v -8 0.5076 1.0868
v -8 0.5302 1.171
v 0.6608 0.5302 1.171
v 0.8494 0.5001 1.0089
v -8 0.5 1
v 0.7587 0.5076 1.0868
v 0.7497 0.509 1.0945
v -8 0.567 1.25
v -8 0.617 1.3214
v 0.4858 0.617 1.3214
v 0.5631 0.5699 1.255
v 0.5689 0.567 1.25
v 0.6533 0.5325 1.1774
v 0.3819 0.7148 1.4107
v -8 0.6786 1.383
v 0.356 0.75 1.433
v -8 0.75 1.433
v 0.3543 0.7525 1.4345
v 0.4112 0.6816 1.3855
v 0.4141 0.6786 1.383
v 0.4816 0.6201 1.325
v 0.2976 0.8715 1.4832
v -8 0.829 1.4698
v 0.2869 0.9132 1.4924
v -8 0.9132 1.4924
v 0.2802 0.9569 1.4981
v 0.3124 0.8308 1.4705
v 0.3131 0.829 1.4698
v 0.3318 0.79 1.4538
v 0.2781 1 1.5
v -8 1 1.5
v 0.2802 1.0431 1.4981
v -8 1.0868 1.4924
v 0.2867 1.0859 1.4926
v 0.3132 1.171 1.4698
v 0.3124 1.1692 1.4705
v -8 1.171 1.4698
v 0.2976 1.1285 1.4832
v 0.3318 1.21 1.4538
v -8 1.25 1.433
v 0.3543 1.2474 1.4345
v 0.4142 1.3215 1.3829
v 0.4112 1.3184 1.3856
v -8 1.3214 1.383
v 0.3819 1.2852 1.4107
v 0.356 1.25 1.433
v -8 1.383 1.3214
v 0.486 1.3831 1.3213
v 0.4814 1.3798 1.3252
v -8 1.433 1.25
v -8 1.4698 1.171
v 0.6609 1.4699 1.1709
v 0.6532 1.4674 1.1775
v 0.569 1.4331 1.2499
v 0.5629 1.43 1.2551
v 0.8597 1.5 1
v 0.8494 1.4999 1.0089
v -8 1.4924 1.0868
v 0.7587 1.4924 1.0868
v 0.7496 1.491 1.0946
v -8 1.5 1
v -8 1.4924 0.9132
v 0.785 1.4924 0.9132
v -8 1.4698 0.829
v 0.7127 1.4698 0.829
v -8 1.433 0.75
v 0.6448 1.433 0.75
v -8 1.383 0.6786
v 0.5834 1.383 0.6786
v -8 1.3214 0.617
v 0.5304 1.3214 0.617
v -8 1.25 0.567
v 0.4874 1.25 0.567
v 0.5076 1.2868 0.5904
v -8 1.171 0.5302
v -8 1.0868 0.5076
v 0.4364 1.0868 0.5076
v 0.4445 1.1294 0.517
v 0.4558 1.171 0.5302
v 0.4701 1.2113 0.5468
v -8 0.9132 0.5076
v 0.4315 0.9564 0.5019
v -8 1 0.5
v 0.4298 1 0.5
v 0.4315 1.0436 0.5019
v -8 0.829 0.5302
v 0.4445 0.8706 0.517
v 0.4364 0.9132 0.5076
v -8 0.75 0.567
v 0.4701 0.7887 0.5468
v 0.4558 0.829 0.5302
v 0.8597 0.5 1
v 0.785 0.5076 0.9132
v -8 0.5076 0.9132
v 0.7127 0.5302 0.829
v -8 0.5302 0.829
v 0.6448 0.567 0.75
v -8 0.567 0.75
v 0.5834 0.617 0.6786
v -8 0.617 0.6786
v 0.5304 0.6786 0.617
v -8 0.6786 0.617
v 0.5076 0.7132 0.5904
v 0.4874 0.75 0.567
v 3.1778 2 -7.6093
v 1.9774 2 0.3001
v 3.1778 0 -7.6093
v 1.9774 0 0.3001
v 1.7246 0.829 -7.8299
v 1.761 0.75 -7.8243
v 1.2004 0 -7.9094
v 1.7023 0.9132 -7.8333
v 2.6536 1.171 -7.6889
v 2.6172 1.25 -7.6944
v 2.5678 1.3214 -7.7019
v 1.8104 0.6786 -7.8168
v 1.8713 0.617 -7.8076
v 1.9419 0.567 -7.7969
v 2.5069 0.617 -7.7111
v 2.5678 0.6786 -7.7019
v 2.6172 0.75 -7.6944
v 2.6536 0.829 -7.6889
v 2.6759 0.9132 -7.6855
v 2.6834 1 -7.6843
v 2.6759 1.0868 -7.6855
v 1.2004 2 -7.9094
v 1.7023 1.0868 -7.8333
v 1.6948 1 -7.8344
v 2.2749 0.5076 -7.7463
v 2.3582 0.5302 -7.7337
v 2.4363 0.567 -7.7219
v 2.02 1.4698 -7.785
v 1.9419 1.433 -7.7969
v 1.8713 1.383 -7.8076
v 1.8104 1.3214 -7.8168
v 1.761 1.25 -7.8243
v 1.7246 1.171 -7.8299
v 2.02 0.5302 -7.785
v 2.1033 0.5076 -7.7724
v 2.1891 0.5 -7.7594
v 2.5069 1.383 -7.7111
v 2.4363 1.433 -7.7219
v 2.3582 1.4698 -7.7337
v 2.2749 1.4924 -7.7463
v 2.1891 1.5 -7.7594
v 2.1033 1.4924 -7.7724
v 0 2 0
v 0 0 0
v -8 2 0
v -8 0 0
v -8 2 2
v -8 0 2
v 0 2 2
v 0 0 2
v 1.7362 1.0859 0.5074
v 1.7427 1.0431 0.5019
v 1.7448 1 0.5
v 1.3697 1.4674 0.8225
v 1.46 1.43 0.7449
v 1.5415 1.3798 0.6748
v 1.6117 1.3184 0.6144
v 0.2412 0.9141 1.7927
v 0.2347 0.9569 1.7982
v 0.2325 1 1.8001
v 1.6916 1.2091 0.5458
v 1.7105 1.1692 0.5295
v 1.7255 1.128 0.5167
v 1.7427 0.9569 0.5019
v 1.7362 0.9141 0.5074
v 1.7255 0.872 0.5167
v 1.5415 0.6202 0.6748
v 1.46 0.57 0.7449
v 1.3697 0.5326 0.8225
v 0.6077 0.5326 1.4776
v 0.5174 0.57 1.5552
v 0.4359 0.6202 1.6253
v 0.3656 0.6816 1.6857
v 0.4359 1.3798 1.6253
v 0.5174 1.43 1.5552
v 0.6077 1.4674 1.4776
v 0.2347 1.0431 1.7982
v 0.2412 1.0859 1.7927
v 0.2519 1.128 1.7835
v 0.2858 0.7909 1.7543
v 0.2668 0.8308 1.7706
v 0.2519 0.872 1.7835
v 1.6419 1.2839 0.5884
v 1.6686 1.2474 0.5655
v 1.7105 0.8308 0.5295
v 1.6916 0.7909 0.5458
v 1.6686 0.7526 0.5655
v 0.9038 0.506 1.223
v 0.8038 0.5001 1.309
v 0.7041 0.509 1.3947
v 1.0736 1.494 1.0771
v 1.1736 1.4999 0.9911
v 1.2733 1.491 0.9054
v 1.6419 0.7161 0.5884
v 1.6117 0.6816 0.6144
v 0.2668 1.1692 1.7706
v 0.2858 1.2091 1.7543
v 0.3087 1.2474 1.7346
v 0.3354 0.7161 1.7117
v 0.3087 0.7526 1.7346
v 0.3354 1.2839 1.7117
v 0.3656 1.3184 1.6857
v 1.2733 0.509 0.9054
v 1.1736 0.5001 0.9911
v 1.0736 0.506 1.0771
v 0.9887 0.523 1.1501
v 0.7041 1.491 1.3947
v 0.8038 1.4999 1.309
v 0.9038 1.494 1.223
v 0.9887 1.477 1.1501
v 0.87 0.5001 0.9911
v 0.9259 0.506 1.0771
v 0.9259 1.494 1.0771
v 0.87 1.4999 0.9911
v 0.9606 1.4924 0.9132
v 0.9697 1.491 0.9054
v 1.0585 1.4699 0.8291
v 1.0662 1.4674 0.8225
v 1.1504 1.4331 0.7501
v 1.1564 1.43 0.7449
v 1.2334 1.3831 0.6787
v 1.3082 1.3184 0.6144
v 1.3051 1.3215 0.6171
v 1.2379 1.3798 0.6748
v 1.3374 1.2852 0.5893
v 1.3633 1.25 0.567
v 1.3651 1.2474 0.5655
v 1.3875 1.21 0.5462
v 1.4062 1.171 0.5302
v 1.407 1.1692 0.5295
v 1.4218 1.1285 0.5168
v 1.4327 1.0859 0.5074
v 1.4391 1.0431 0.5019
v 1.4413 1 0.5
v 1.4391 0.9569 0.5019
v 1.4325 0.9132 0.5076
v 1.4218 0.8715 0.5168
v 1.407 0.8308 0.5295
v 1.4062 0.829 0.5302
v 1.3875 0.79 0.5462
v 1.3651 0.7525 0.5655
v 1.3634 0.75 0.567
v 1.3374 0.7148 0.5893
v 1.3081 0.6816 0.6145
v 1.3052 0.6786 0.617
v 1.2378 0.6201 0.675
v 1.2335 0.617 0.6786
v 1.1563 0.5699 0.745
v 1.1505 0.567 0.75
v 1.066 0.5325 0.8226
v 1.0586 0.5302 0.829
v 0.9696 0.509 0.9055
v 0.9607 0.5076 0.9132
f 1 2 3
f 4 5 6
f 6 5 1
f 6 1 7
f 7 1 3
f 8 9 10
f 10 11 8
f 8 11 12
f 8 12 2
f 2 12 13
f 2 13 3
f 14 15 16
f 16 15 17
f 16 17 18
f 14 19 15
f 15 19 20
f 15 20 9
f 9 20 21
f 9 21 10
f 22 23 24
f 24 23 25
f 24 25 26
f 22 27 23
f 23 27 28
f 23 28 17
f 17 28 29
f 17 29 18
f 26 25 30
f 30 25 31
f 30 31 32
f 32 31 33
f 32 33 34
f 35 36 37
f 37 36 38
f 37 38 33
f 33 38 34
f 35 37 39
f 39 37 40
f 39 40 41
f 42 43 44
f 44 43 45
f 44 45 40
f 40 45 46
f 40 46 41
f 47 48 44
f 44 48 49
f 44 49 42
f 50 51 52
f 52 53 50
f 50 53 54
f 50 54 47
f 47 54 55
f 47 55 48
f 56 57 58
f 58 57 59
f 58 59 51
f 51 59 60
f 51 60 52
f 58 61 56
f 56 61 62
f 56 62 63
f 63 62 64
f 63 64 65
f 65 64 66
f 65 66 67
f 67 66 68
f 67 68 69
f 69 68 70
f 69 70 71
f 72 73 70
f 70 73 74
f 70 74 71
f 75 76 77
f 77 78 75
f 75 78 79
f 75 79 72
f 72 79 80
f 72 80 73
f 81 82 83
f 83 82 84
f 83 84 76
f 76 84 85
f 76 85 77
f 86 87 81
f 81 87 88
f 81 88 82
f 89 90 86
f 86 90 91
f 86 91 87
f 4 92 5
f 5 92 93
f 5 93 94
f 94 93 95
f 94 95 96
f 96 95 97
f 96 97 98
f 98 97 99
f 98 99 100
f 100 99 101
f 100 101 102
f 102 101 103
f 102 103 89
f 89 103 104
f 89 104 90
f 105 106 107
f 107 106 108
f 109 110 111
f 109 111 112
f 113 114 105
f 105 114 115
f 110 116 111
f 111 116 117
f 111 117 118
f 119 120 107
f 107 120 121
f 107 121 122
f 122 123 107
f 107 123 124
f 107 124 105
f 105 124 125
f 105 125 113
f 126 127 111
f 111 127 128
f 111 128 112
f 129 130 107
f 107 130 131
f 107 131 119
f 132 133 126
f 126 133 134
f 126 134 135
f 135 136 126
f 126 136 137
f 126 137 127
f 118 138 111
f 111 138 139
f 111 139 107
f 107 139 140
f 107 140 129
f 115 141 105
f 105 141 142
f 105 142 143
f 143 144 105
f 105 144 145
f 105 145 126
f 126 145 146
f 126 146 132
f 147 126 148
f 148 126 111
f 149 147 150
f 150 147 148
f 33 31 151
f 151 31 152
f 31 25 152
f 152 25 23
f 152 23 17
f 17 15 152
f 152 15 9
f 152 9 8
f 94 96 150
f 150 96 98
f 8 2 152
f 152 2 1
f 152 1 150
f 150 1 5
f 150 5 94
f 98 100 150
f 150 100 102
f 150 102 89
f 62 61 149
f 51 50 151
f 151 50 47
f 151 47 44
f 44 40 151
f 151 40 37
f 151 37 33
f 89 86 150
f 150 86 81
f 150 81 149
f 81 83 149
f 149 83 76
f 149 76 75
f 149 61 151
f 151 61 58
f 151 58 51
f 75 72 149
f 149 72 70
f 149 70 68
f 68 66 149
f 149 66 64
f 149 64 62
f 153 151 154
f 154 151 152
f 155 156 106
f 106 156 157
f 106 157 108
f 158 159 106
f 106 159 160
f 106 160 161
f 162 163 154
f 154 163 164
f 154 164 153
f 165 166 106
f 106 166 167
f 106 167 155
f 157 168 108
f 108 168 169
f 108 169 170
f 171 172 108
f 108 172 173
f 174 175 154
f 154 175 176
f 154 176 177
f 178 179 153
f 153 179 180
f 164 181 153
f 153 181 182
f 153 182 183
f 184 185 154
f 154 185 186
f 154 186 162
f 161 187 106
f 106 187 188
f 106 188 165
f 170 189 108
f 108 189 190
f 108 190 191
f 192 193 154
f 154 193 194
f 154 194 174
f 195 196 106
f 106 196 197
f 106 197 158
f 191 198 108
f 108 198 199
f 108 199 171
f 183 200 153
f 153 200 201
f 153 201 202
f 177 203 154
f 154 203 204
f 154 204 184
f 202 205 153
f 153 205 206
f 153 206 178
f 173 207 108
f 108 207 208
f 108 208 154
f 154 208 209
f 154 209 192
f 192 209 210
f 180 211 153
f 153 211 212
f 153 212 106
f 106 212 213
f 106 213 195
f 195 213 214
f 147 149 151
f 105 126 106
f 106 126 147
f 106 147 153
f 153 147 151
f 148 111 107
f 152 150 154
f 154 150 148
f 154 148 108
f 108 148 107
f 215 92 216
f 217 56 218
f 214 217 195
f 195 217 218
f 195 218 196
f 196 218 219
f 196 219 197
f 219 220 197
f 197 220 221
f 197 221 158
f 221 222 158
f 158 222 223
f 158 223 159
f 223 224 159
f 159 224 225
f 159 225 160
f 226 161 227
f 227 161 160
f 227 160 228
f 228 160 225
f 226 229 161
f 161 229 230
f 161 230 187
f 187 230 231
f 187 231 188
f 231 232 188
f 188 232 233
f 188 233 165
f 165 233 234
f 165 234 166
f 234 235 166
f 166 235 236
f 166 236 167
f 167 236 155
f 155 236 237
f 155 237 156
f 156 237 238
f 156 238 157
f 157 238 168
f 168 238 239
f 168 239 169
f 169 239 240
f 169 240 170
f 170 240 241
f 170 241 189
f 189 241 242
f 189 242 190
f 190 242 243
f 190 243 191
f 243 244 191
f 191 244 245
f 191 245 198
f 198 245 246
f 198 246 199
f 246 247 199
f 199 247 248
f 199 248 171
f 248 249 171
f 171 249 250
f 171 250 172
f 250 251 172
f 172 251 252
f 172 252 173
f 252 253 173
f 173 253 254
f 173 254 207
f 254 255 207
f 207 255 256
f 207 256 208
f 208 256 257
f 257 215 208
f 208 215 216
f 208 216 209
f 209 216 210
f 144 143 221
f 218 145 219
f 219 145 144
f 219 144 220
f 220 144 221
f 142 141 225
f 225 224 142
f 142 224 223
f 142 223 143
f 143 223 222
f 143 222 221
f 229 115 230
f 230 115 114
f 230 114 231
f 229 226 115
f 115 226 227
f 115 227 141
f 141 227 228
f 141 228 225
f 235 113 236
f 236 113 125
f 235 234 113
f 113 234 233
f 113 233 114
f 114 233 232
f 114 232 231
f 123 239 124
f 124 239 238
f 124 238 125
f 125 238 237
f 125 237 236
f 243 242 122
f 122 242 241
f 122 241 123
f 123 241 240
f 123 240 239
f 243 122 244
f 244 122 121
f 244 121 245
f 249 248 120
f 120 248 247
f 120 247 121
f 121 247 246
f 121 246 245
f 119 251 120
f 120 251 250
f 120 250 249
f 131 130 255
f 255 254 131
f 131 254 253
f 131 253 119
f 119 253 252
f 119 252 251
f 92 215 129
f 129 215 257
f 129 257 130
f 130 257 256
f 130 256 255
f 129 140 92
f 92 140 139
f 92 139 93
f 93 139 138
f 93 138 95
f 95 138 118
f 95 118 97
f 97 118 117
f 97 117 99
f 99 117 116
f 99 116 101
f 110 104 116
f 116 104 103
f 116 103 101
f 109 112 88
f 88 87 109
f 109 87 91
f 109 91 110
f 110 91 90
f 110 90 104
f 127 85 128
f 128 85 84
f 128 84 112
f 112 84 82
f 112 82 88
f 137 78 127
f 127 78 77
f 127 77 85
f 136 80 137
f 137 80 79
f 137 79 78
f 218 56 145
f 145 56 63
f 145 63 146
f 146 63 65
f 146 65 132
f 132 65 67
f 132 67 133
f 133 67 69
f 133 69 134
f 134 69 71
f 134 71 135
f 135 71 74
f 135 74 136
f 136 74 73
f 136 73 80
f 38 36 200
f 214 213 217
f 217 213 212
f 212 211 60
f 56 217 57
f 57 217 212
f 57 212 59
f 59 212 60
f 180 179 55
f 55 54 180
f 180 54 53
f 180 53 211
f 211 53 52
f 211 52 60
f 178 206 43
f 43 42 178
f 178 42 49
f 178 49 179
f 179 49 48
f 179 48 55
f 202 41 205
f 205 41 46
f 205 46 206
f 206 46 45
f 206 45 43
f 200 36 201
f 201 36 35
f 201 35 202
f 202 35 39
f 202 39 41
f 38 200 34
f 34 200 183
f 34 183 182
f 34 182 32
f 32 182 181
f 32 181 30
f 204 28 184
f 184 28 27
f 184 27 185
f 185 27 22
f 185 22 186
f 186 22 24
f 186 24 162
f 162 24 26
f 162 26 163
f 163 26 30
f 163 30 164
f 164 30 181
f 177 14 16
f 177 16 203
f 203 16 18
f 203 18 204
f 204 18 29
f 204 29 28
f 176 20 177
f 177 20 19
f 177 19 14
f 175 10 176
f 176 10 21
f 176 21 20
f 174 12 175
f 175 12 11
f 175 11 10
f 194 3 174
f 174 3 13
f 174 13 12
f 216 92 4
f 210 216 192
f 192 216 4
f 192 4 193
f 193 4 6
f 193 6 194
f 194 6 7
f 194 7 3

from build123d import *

# Parameters (mm, degrees)
BOSS_EXTRUDE1_DEPTH = 2
SKETCH3_R           = 0.5
CUT_EXTRUDE1_DEPTH  = 12
SKETCH4_R           = 0.5
CUT_EXTRUDE3_DEPTH  = 12


with BuildPart() as part:
    # Sketch2 → Boss-Extrude1 (new body)
    with BuildSketch(Plane(origin=(0, 0, 0), x_dir=(1, 0, 0), z_dir=(0, 1, 0))):
        Polygon((-8, -2), (0, -2), (1.977355898, -0.300106069), (3.177780174, 7.609317523), (1.200424276, 7.909423592), (0, 0), (-8, 0), align=None)
    extrude(amount=BOSS_EXTRUDE1_DEPTH)

    # Sketch3 → Cut-Extrude1 (cut)
    with BuildSketch(Plane.ZY.offset(8)):
        with Locations((1, 1)):
            Circle(SKETCH3_R)
    extrude(amount=-CUT_EXTRUDE1_DEPTH, mode=Mode.SUBTRACT)

    # Sketch4 → Cut-Extrude3 (cut)
    with BuildSketch(Plane(origin=(1.200424276, 0, -7.909423592), x_dir=(-0.9886779489912622, 0, -0.15005303455255817), z_dir=(0.15005303455255817, 0, -0.9886779489912622))):
        with Locations((-1, 1)):
            Circle(SKETCH4_R)
    extrude(amount=-CUT_EXTRUDE3_DEPTH, mode=Mode.SUBTRACT)


solid = part.part
